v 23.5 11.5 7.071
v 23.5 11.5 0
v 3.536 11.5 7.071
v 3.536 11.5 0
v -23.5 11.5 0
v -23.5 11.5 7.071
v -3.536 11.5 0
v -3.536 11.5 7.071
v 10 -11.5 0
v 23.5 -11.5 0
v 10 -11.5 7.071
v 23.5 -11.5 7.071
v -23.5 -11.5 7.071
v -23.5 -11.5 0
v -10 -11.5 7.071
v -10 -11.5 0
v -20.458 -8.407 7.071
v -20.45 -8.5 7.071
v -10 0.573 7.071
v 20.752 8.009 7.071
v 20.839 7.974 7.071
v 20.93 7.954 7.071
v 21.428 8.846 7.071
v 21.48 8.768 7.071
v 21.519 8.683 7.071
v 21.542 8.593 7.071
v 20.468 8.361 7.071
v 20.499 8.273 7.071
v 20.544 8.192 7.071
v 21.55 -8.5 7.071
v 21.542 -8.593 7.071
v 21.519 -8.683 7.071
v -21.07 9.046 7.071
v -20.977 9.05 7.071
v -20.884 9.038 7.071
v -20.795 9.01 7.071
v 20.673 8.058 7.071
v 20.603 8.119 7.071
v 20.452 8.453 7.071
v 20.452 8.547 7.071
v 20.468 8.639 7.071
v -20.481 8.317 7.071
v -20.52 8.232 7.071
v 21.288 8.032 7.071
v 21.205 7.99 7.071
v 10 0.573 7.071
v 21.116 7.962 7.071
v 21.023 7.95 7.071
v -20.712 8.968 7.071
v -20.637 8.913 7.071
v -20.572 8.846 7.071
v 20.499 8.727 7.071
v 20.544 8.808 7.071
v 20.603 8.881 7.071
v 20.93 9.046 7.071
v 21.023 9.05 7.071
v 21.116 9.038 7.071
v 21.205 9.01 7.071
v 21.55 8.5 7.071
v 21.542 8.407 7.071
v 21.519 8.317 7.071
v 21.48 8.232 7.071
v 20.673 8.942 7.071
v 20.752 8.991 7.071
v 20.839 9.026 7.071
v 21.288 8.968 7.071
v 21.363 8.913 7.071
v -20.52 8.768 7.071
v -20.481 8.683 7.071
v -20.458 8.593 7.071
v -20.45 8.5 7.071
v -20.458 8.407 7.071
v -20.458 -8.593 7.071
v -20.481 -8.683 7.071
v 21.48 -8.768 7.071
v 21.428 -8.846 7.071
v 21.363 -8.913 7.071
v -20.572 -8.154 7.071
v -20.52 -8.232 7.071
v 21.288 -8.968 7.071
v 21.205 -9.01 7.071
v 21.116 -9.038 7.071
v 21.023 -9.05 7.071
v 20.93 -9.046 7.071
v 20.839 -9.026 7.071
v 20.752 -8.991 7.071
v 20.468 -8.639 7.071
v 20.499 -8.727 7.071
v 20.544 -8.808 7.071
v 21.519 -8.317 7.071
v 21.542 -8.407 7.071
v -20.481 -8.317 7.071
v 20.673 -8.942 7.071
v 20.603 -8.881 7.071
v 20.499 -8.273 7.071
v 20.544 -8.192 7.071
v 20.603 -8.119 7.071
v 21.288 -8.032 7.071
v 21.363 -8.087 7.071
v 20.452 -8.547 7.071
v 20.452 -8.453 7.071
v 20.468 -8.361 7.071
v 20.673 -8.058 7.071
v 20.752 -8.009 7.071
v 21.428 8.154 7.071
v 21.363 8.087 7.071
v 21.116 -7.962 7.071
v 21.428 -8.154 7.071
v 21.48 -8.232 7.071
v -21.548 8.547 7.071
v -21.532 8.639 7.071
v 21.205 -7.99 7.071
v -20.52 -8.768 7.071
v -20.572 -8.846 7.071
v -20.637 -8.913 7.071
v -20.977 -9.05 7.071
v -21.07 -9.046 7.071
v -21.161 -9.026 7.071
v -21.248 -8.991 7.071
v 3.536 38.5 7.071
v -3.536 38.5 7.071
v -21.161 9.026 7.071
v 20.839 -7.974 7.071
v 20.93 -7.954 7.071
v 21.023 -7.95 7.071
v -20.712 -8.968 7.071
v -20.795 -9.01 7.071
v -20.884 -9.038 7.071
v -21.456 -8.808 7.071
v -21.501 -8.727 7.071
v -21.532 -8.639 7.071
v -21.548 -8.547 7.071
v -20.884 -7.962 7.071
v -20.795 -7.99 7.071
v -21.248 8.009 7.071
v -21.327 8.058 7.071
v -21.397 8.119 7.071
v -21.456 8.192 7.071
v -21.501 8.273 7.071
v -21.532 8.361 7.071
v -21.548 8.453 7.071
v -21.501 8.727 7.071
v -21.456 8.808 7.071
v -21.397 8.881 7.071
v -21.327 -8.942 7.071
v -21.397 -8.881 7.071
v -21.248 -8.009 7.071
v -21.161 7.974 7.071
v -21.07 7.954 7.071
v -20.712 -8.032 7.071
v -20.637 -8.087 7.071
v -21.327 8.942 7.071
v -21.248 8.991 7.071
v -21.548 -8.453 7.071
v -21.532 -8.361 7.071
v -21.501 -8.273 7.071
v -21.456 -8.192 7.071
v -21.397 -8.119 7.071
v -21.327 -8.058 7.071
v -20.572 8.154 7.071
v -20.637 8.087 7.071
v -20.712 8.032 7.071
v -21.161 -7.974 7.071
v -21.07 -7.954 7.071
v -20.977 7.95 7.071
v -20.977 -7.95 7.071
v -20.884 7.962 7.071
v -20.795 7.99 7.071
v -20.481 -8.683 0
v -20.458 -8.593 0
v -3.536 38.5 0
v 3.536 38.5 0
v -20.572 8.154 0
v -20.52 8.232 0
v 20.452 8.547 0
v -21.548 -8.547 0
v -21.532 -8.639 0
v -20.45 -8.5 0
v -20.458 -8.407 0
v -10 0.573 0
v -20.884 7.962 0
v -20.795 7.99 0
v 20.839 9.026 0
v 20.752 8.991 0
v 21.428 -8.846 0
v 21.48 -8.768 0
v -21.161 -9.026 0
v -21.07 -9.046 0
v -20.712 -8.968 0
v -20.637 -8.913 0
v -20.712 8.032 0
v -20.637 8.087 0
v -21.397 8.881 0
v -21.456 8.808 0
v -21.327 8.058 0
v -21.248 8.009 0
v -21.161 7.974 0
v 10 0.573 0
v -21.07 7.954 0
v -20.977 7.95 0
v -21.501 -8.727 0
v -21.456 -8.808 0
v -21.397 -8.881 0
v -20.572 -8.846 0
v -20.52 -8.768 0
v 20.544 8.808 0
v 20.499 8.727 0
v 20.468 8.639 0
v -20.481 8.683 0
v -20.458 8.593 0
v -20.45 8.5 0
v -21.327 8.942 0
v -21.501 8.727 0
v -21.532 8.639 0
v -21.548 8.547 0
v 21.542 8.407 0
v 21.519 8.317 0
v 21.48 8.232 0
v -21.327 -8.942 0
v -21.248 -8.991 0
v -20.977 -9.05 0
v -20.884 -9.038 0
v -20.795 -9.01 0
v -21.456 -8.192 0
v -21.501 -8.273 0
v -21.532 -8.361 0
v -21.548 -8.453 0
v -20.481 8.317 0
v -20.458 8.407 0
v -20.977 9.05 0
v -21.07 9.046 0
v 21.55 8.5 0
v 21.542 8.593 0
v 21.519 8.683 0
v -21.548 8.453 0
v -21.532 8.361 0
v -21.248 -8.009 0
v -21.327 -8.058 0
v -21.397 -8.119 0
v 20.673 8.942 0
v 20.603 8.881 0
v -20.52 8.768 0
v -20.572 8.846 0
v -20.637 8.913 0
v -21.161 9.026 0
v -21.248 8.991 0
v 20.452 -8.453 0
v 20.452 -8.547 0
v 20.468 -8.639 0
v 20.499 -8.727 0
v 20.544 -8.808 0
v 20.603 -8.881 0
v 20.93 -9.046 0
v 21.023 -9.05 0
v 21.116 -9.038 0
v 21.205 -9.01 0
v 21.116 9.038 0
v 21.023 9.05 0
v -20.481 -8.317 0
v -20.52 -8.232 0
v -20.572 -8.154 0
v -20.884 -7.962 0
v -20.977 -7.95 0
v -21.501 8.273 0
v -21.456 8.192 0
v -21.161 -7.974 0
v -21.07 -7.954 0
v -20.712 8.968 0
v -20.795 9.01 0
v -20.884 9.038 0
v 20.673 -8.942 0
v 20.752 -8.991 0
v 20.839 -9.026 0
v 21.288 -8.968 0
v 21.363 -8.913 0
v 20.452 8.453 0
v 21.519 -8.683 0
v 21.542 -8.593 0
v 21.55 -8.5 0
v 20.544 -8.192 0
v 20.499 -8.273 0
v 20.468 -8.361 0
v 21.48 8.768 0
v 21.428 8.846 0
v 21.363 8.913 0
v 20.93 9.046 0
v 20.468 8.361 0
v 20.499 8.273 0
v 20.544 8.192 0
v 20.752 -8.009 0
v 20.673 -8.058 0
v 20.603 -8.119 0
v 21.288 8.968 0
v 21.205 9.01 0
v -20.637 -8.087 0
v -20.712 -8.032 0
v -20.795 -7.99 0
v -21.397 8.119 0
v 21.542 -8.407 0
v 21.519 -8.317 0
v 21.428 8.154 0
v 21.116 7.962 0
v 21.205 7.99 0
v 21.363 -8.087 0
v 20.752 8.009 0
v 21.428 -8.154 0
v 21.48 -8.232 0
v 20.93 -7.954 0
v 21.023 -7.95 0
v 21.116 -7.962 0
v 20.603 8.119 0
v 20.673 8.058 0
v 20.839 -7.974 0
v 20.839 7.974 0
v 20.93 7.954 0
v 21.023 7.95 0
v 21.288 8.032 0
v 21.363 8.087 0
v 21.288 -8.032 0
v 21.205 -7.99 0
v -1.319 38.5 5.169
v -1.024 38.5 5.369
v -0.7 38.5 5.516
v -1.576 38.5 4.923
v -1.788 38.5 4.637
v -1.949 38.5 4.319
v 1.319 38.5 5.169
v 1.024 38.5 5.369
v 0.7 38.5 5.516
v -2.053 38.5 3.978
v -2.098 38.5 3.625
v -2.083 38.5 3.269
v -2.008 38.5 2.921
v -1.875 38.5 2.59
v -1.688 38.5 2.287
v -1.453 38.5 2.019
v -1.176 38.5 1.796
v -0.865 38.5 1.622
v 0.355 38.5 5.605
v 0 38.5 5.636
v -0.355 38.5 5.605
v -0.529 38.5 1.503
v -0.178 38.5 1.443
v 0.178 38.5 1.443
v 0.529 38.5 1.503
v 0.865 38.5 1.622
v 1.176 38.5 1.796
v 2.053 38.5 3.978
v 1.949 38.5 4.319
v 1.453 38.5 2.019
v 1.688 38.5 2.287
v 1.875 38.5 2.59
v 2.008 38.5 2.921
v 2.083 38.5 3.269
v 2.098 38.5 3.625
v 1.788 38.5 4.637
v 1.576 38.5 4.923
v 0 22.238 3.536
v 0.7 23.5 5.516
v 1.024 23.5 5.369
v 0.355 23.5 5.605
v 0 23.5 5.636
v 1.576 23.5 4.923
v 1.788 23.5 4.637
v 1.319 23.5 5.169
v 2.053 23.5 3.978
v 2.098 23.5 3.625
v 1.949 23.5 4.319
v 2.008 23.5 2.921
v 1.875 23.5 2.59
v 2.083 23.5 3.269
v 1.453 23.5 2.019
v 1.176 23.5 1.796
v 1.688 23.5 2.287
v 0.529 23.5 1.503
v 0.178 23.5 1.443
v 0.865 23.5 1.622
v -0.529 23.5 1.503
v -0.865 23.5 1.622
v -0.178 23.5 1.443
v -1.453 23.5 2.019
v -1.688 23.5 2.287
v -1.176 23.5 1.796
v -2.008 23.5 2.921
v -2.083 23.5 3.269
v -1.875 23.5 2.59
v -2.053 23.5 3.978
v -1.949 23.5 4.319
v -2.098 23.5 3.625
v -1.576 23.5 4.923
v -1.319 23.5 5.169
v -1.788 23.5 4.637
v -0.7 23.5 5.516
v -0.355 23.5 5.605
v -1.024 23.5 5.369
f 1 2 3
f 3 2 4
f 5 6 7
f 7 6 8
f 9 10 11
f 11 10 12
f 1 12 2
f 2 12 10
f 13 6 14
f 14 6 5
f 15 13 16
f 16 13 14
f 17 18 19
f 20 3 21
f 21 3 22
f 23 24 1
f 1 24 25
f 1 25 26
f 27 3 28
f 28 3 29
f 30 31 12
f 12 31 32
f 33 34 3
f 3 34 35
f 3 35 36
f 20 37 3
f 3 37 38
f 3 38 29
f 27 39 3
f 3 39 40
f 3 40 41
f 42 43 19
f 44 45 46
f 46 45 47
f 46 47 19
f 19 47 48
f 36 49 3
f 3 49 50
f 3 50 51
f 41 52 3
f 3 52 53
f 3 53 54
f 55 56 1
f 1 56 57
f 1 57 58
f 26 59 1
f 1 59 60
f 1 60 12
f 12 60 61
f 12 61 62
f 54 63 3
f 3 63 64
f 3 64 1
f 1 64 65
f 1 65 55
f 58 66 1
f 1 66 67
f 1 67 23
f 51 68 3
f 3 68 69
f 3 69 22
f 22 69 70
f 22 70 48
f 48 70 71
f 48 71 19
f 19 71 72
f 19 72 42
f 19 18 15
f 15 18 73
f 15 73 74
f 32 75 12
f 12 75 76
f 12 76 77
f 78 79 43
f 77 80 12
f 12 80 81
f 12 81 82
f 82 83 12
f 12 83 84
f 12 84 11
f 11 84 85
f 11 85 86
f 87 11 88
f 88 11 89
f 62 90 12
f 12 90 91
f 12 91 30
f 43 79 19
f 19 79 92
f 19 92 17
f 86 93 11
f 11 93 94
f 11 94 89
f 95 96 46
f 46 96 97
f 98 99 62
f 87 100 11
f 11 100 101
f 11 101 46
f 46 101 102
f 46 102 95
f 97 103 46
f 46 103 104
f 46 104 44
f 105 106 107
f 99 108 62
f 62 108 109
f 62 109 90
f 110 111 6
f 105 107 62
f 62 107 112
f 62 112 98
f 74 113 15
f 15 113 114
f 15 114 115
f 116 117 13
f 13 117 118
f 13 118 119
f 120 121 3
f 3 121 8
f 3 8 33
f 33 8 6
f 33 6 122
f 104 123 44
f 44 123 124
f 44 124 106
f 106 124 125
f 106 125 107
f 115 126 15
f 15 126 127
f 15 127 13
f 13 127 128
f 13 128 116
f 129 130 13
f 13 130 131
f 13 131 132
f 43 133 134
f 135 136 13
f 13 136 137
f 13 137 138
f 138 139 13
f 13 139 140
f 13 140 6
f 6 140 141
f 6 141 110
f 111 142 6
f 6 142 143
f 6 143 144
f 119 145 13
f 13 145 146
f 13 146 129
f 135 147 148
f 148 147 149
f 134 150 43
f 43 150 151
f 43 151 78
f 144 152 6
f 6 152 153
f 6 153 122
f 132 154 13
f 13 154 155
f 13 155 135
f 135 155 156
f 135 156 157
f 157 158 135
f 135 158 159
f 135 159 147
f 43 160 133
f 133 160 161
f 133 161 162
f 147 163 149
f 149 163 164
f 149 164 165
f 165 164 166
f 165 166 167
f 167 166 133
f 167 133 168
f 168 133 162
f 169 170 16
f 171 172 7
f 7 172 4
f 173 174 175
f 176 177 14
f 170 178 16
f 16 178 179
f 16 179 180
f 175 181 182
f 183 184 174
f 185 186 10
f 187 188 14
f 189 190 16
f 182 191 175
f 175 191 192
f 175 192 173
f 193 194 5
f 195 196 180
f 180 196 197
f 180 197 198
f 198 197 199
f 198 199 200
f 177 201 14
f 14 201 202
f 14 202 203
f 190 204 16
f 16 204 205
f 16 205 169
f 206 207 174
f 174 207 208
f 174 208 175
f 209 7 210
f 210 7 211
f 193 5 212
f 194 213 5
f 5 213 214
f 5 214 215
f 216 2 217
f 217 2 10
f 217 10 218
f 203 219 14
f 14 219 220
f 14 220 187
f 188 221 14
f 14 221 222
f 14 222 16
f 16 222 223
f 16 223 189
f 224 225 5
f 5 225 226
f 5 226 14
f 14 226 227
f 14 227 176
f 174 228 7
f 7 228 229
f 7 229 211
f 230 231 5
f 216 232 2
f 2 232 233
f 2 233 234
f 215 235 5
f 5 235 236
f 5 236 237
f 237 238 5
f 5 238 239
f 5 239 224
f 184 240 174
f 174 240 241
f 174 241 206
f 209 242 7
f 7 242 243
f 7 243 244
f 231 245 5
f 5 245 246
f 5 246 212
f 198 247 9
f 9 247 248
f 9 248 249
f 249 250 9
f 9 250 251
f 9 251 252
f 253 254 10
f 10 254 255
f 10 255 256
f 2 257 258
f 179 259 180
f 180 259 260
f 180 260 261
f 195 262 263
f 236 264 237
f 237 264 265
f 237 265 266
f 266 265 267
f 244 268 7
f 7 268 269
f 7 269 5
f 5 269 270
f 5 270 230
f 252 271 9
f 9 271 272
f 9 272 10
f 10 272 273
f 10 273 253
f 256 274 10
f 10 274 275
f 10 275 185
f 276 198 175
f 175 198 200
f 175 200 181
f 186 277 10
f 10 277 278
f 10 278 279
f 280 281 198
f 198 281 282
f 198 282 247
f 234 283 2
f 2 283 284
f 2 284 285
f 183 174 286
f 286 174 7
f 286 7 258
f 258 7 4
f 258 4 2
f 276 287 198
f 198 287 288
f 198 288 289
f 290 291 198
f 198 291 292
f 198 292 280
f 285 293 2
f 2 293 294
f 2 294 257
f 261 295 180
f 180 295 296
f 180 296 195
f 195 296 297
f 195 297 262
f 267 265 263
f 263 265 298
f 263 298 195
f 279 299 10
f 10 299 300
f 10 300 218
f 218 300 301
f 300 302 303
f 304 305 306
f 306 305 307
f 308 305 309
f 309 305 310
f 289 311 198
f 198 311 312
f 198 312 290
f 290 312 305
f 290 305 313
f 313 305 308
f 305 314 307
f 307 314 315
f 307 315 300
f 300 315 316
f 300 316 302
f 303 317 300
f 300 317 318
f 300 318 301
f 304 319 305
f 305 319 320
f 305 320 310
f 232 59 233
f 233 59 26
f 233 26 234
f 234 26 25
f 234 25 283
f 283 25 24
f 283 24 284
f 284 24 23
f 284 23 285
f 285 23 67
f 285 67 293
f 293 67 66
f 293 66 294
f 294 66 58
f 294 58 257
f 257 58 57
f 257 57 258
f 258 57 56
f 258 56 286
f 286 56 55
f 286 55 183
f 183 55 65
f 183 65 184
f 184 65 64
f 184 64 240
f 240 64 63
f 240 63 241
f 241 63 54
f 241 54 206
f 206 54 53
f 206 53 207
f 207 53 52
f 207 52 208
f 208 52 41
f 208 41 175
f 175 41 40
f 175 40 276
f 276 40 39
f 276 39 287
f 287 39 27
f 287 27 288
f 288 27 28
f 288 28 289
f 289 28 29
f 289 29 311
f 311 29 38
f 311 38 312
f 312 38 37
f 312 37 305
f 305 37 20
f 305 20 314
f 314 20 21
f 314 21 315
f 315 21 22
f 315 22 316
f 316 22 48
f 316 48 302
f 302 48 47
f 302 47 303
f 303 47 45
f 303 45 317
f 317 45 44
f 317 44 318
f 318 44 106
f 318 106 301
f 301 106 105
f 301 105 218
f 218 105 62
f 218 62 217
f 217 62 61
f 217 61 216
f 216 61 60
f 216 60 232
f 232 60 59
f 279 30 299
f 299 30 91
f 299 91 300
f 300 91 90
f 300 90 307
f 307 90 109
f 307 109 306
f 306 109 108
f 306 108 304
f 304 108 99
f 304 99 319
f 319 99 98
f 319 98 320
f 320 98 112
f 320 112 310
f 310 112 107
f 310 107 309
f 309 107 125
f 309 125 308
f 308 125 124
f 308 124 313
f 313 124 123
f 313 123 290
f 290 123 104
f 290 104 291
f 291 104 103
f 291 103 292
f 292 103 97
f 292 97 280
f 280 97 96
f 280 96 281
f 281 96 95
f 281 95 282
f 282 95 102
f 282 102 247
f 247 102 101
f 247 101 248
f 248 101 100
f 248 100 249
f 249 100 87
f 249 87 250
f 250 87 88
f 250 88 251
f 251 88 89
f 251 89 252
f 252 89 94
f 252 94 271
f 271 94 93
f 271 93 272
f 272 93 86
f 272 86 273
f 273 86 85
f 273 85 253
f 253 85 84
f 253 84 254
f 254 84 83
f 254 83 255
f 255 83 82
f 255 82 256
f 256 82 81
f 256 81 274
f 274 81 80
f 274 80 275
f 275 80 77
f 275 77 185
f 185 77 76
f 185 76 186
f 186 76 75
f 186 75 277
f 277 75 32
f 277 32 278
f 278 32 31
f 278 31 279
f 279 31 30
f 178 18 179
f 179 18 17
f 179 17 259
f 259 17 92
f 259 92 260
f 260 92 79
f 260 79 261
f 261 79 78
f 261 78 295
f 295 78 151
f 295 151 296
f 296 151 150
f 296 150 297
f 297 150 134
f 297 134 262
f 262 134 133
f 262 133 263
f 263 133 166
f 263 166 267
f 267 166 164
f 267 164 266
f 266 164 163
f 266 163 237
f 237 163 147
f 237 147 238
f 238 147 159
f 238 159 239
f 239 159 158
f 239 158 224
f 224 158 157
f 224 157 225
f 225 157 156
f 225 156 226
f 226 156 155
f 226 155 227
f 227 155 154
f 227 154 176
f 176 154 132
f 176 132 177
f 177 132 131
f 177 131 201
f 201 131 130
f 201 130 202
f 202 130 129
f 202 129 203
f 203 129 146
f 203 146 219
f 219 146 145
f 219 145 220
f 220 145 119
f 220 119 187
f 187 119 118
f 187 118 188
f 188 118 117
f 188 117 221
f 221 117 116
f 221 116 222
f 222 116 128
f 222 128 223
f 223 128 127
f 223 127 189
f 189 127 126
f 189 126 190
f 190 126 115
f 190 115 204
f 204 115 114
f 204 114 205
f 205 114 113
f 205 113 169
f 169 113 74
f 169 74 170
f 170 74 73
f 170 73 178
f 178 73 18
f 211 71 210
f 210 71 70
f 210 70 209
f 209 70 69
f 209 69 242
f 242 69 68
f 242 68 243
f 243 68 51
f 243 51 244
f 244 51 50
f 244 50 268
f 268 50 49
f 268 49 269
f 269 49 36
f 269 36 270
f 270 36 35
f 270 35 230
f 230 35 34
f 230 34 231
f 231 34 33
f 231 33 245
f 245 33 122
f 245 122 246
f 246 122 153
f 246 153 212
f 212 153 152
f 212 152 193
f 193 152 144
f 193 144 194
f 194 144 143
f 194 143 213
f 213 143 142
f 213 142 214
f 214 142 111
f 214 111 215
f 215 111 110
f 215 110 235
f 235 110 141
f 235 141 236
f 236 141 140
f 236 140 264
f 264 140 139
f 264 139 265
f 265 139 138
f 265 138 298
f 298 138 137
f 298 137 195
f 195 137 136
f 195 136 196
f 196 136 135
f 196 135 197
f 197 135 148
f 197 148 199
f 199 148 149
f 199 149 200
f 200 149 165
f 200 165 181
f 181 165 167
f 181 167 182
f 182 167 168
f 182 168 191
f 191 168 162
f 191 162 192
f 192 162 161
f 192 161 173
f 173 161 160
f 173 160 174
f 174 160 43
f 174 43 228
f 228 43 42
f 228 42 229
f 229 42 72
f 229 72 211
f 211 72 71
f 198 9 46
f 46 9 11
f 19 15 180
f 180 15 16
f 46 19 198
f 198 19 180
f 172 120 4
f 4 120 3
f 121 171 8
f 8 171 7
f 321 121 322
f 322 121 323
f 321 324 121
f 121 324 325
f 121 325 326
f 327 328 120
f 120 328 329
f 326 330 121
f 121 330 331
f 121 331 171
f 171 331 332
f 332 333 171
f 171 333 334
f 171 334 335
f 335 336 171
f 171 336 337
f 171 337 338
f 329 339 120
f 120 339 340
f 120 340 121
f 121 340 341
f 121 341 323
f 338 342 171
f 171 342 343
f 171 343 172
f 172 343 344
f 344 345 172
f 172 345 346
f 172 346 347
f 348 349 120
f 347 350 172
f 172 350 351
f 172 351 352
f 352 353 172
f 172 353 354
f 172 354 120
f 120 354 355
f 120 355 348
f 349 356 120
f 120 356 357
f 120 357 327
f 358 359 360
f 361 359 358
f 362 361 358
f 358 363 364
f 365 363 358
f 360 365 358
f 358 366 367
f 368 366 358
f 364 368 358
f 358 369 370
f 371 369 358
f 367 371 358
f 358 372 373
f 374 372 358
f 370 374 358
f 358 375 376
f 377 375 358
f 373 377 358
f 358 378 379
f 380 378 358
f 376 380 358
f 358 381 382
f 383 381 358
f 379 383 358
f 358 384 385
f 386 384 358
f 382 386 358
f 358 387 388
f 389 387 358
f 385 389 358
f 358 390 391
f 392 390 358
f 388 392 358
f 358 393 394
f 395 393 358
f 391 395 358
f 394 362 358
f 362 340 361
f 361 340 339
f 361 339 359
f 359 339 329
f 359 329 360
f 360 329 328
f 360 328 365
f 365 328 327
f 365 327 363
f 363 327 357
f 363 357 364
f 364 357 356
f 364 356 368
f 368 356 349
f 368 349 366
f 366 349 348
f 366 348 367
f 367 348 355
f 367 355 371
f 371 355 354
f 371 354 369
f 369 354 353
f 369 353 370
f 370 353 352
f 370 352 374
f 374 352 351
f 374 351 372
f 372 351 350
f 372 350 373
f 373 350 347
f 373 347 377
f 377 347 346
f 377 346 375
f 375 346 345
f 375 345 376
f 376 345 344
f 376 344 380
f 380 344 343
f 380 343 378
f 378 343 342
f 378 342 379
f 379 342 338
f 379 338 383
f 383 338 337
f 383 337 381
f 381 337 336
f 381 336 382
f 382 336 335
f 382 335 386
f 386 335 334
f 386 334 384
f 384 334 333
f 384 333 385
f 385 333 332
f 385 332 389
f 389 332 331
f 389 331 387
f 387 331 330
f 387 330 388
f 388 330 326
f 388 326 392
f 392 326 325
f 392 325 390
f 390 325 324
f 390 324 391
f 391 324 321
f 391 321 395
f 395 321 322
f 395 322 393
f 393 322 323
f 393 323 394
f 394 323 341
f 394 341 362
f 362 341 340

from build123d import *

# Parameters (mm, degrees)
ESQUISSE1_W               = 47
ESQUISSE1_H               = 23
BOSS_EXTRU_1_DEPTH        = 7.071067812
TROU_TARAUD_M1_4X0_32_D   = 1.1
ESQUISSE5_W               = 20
ESQUISSE5_H               = 15
ENL_V_MAT_EXTRU_1_DEPTH   = 7.071067812
ESQUISSE6_W               = 20
ESQUISSE6_H               = 10.927419914
BOSS_EXTRU_2_DEPTH        = 7.071067812
ESQUISSE9_W               = 7.071067812
ESQUISSE9_H               = 7.071067812
BOSS_EXTRU_5_DEPTH        = 27
ESQUISSE10_R              = 1.5
ENL_V_MAT_EXTRU_2_DEPTH   = 3
TROU_TARAUD_M5X0_81_D     = 4.2
TROU_TARAUD_M5X0_81_DEPTH = 15
TROU_TARAUD_M5X0_81_TIP   = 1.2618073


with BuildPart() as part:
    # Esquisse1 → Boss.-Extru.1 (new body)
    with BuildSketch(Plane.XY):
        Rectangle(ESQUISSE1_W, ESQUISSE1_H)
    extrude(amount=BOSS_EXTRU_1_DEPTH)

    # Trou taraudé M1.4x0.32 (through all)
    with Locations(Plane(origin=(-21, 8.5, 7.071067812), x_dir=(1, 0, 0), z_dir=(0, 0, 1))):
        with Locations((0, 0), (0, -17), (42, -17), (42, 0)):
            Hole(TROU_TARAUD_M1_4X0_32_D / 2)

    # Esquisse5 → Enlèv. mat.-Extru.1 (cut)
    with BuildSketch(Plane.XY.offset(7.071067812)):
        with Locations((0, -6.927419914)):
            Rectangle(ESQUISSE5_W, ESQUISSE5_H)
    extrude(amount=-ENL_V_MAT_EXTRU_1_DEPTH, mode=Mode.SUBTRACT)

    # Esquisse6 → Boss.-Extru.2 (add)
    with BuildSketch(Plane(origin=(0, 0, 0), x_dir=(-1, 0, 0), z_dir=(0, 0, -1))):
        with Locations((0, 6.036290043)):
            Rectangle(ESQUISSE6_W, ESQUISSE6_H)
    extrude(amount=-BOSS_EXTRU_2_DEPTH)

    # Esquisse9 → Boss.-Extru.5 (add)
    with BuildSketch(Plane(origin=(0, 11.5, 0), x_dir=(1, 0, 0), z_dir=(0, 1, 0))):
        with Locations((0, -3.535533906)):
            Rectangle(ESQUISSE9_W, ESQUISSE9_H)
    extrude(amount=BOSS_EXTRU_5_DEPTH)

    # Esquisse10 → Enlèv. mat.-Extru.2 (cut)
    with BuildSketch(Plane(origin=(0, 38.5, 0), x_dir=(1, 0, 0), z_dir=(0, 1, 0))):
        with Locations(Location((0, -3.535533906, 0), (0, 0, 270))):
            Circle(ESQUISSE10_R)
    extrude(amount=-ENL_V_MAT_EXTRU_2_DEPTH, mode=Mode.SUBTRACT)

    # Trou taraudé M5x0.81
    with Locations(Plane(origin=(0, 38.5, 3.535533906), x_dir=(0, 0, 1), z_dir=(0, 1, 0))):
        with Locations((0, 0)):
            Hole(TROU_TARAUD_M5X0_81_D / 2, depth=TROU_TARAUD_M5X0_81_DEPTH)
            with Locations((0, 0, -(TROU_TARAUD_M5X0_81_DEPTH + TROU_TARAUD_M5X0_81_TIP / 2))):  # 118° drill point
                Cone(0, TROU_TARAUD_M5X0_81_D / 2, TROU_TARAUD_M5X0_81_TIP, mode=Mode.SUBTRACT)


solid = part.part
